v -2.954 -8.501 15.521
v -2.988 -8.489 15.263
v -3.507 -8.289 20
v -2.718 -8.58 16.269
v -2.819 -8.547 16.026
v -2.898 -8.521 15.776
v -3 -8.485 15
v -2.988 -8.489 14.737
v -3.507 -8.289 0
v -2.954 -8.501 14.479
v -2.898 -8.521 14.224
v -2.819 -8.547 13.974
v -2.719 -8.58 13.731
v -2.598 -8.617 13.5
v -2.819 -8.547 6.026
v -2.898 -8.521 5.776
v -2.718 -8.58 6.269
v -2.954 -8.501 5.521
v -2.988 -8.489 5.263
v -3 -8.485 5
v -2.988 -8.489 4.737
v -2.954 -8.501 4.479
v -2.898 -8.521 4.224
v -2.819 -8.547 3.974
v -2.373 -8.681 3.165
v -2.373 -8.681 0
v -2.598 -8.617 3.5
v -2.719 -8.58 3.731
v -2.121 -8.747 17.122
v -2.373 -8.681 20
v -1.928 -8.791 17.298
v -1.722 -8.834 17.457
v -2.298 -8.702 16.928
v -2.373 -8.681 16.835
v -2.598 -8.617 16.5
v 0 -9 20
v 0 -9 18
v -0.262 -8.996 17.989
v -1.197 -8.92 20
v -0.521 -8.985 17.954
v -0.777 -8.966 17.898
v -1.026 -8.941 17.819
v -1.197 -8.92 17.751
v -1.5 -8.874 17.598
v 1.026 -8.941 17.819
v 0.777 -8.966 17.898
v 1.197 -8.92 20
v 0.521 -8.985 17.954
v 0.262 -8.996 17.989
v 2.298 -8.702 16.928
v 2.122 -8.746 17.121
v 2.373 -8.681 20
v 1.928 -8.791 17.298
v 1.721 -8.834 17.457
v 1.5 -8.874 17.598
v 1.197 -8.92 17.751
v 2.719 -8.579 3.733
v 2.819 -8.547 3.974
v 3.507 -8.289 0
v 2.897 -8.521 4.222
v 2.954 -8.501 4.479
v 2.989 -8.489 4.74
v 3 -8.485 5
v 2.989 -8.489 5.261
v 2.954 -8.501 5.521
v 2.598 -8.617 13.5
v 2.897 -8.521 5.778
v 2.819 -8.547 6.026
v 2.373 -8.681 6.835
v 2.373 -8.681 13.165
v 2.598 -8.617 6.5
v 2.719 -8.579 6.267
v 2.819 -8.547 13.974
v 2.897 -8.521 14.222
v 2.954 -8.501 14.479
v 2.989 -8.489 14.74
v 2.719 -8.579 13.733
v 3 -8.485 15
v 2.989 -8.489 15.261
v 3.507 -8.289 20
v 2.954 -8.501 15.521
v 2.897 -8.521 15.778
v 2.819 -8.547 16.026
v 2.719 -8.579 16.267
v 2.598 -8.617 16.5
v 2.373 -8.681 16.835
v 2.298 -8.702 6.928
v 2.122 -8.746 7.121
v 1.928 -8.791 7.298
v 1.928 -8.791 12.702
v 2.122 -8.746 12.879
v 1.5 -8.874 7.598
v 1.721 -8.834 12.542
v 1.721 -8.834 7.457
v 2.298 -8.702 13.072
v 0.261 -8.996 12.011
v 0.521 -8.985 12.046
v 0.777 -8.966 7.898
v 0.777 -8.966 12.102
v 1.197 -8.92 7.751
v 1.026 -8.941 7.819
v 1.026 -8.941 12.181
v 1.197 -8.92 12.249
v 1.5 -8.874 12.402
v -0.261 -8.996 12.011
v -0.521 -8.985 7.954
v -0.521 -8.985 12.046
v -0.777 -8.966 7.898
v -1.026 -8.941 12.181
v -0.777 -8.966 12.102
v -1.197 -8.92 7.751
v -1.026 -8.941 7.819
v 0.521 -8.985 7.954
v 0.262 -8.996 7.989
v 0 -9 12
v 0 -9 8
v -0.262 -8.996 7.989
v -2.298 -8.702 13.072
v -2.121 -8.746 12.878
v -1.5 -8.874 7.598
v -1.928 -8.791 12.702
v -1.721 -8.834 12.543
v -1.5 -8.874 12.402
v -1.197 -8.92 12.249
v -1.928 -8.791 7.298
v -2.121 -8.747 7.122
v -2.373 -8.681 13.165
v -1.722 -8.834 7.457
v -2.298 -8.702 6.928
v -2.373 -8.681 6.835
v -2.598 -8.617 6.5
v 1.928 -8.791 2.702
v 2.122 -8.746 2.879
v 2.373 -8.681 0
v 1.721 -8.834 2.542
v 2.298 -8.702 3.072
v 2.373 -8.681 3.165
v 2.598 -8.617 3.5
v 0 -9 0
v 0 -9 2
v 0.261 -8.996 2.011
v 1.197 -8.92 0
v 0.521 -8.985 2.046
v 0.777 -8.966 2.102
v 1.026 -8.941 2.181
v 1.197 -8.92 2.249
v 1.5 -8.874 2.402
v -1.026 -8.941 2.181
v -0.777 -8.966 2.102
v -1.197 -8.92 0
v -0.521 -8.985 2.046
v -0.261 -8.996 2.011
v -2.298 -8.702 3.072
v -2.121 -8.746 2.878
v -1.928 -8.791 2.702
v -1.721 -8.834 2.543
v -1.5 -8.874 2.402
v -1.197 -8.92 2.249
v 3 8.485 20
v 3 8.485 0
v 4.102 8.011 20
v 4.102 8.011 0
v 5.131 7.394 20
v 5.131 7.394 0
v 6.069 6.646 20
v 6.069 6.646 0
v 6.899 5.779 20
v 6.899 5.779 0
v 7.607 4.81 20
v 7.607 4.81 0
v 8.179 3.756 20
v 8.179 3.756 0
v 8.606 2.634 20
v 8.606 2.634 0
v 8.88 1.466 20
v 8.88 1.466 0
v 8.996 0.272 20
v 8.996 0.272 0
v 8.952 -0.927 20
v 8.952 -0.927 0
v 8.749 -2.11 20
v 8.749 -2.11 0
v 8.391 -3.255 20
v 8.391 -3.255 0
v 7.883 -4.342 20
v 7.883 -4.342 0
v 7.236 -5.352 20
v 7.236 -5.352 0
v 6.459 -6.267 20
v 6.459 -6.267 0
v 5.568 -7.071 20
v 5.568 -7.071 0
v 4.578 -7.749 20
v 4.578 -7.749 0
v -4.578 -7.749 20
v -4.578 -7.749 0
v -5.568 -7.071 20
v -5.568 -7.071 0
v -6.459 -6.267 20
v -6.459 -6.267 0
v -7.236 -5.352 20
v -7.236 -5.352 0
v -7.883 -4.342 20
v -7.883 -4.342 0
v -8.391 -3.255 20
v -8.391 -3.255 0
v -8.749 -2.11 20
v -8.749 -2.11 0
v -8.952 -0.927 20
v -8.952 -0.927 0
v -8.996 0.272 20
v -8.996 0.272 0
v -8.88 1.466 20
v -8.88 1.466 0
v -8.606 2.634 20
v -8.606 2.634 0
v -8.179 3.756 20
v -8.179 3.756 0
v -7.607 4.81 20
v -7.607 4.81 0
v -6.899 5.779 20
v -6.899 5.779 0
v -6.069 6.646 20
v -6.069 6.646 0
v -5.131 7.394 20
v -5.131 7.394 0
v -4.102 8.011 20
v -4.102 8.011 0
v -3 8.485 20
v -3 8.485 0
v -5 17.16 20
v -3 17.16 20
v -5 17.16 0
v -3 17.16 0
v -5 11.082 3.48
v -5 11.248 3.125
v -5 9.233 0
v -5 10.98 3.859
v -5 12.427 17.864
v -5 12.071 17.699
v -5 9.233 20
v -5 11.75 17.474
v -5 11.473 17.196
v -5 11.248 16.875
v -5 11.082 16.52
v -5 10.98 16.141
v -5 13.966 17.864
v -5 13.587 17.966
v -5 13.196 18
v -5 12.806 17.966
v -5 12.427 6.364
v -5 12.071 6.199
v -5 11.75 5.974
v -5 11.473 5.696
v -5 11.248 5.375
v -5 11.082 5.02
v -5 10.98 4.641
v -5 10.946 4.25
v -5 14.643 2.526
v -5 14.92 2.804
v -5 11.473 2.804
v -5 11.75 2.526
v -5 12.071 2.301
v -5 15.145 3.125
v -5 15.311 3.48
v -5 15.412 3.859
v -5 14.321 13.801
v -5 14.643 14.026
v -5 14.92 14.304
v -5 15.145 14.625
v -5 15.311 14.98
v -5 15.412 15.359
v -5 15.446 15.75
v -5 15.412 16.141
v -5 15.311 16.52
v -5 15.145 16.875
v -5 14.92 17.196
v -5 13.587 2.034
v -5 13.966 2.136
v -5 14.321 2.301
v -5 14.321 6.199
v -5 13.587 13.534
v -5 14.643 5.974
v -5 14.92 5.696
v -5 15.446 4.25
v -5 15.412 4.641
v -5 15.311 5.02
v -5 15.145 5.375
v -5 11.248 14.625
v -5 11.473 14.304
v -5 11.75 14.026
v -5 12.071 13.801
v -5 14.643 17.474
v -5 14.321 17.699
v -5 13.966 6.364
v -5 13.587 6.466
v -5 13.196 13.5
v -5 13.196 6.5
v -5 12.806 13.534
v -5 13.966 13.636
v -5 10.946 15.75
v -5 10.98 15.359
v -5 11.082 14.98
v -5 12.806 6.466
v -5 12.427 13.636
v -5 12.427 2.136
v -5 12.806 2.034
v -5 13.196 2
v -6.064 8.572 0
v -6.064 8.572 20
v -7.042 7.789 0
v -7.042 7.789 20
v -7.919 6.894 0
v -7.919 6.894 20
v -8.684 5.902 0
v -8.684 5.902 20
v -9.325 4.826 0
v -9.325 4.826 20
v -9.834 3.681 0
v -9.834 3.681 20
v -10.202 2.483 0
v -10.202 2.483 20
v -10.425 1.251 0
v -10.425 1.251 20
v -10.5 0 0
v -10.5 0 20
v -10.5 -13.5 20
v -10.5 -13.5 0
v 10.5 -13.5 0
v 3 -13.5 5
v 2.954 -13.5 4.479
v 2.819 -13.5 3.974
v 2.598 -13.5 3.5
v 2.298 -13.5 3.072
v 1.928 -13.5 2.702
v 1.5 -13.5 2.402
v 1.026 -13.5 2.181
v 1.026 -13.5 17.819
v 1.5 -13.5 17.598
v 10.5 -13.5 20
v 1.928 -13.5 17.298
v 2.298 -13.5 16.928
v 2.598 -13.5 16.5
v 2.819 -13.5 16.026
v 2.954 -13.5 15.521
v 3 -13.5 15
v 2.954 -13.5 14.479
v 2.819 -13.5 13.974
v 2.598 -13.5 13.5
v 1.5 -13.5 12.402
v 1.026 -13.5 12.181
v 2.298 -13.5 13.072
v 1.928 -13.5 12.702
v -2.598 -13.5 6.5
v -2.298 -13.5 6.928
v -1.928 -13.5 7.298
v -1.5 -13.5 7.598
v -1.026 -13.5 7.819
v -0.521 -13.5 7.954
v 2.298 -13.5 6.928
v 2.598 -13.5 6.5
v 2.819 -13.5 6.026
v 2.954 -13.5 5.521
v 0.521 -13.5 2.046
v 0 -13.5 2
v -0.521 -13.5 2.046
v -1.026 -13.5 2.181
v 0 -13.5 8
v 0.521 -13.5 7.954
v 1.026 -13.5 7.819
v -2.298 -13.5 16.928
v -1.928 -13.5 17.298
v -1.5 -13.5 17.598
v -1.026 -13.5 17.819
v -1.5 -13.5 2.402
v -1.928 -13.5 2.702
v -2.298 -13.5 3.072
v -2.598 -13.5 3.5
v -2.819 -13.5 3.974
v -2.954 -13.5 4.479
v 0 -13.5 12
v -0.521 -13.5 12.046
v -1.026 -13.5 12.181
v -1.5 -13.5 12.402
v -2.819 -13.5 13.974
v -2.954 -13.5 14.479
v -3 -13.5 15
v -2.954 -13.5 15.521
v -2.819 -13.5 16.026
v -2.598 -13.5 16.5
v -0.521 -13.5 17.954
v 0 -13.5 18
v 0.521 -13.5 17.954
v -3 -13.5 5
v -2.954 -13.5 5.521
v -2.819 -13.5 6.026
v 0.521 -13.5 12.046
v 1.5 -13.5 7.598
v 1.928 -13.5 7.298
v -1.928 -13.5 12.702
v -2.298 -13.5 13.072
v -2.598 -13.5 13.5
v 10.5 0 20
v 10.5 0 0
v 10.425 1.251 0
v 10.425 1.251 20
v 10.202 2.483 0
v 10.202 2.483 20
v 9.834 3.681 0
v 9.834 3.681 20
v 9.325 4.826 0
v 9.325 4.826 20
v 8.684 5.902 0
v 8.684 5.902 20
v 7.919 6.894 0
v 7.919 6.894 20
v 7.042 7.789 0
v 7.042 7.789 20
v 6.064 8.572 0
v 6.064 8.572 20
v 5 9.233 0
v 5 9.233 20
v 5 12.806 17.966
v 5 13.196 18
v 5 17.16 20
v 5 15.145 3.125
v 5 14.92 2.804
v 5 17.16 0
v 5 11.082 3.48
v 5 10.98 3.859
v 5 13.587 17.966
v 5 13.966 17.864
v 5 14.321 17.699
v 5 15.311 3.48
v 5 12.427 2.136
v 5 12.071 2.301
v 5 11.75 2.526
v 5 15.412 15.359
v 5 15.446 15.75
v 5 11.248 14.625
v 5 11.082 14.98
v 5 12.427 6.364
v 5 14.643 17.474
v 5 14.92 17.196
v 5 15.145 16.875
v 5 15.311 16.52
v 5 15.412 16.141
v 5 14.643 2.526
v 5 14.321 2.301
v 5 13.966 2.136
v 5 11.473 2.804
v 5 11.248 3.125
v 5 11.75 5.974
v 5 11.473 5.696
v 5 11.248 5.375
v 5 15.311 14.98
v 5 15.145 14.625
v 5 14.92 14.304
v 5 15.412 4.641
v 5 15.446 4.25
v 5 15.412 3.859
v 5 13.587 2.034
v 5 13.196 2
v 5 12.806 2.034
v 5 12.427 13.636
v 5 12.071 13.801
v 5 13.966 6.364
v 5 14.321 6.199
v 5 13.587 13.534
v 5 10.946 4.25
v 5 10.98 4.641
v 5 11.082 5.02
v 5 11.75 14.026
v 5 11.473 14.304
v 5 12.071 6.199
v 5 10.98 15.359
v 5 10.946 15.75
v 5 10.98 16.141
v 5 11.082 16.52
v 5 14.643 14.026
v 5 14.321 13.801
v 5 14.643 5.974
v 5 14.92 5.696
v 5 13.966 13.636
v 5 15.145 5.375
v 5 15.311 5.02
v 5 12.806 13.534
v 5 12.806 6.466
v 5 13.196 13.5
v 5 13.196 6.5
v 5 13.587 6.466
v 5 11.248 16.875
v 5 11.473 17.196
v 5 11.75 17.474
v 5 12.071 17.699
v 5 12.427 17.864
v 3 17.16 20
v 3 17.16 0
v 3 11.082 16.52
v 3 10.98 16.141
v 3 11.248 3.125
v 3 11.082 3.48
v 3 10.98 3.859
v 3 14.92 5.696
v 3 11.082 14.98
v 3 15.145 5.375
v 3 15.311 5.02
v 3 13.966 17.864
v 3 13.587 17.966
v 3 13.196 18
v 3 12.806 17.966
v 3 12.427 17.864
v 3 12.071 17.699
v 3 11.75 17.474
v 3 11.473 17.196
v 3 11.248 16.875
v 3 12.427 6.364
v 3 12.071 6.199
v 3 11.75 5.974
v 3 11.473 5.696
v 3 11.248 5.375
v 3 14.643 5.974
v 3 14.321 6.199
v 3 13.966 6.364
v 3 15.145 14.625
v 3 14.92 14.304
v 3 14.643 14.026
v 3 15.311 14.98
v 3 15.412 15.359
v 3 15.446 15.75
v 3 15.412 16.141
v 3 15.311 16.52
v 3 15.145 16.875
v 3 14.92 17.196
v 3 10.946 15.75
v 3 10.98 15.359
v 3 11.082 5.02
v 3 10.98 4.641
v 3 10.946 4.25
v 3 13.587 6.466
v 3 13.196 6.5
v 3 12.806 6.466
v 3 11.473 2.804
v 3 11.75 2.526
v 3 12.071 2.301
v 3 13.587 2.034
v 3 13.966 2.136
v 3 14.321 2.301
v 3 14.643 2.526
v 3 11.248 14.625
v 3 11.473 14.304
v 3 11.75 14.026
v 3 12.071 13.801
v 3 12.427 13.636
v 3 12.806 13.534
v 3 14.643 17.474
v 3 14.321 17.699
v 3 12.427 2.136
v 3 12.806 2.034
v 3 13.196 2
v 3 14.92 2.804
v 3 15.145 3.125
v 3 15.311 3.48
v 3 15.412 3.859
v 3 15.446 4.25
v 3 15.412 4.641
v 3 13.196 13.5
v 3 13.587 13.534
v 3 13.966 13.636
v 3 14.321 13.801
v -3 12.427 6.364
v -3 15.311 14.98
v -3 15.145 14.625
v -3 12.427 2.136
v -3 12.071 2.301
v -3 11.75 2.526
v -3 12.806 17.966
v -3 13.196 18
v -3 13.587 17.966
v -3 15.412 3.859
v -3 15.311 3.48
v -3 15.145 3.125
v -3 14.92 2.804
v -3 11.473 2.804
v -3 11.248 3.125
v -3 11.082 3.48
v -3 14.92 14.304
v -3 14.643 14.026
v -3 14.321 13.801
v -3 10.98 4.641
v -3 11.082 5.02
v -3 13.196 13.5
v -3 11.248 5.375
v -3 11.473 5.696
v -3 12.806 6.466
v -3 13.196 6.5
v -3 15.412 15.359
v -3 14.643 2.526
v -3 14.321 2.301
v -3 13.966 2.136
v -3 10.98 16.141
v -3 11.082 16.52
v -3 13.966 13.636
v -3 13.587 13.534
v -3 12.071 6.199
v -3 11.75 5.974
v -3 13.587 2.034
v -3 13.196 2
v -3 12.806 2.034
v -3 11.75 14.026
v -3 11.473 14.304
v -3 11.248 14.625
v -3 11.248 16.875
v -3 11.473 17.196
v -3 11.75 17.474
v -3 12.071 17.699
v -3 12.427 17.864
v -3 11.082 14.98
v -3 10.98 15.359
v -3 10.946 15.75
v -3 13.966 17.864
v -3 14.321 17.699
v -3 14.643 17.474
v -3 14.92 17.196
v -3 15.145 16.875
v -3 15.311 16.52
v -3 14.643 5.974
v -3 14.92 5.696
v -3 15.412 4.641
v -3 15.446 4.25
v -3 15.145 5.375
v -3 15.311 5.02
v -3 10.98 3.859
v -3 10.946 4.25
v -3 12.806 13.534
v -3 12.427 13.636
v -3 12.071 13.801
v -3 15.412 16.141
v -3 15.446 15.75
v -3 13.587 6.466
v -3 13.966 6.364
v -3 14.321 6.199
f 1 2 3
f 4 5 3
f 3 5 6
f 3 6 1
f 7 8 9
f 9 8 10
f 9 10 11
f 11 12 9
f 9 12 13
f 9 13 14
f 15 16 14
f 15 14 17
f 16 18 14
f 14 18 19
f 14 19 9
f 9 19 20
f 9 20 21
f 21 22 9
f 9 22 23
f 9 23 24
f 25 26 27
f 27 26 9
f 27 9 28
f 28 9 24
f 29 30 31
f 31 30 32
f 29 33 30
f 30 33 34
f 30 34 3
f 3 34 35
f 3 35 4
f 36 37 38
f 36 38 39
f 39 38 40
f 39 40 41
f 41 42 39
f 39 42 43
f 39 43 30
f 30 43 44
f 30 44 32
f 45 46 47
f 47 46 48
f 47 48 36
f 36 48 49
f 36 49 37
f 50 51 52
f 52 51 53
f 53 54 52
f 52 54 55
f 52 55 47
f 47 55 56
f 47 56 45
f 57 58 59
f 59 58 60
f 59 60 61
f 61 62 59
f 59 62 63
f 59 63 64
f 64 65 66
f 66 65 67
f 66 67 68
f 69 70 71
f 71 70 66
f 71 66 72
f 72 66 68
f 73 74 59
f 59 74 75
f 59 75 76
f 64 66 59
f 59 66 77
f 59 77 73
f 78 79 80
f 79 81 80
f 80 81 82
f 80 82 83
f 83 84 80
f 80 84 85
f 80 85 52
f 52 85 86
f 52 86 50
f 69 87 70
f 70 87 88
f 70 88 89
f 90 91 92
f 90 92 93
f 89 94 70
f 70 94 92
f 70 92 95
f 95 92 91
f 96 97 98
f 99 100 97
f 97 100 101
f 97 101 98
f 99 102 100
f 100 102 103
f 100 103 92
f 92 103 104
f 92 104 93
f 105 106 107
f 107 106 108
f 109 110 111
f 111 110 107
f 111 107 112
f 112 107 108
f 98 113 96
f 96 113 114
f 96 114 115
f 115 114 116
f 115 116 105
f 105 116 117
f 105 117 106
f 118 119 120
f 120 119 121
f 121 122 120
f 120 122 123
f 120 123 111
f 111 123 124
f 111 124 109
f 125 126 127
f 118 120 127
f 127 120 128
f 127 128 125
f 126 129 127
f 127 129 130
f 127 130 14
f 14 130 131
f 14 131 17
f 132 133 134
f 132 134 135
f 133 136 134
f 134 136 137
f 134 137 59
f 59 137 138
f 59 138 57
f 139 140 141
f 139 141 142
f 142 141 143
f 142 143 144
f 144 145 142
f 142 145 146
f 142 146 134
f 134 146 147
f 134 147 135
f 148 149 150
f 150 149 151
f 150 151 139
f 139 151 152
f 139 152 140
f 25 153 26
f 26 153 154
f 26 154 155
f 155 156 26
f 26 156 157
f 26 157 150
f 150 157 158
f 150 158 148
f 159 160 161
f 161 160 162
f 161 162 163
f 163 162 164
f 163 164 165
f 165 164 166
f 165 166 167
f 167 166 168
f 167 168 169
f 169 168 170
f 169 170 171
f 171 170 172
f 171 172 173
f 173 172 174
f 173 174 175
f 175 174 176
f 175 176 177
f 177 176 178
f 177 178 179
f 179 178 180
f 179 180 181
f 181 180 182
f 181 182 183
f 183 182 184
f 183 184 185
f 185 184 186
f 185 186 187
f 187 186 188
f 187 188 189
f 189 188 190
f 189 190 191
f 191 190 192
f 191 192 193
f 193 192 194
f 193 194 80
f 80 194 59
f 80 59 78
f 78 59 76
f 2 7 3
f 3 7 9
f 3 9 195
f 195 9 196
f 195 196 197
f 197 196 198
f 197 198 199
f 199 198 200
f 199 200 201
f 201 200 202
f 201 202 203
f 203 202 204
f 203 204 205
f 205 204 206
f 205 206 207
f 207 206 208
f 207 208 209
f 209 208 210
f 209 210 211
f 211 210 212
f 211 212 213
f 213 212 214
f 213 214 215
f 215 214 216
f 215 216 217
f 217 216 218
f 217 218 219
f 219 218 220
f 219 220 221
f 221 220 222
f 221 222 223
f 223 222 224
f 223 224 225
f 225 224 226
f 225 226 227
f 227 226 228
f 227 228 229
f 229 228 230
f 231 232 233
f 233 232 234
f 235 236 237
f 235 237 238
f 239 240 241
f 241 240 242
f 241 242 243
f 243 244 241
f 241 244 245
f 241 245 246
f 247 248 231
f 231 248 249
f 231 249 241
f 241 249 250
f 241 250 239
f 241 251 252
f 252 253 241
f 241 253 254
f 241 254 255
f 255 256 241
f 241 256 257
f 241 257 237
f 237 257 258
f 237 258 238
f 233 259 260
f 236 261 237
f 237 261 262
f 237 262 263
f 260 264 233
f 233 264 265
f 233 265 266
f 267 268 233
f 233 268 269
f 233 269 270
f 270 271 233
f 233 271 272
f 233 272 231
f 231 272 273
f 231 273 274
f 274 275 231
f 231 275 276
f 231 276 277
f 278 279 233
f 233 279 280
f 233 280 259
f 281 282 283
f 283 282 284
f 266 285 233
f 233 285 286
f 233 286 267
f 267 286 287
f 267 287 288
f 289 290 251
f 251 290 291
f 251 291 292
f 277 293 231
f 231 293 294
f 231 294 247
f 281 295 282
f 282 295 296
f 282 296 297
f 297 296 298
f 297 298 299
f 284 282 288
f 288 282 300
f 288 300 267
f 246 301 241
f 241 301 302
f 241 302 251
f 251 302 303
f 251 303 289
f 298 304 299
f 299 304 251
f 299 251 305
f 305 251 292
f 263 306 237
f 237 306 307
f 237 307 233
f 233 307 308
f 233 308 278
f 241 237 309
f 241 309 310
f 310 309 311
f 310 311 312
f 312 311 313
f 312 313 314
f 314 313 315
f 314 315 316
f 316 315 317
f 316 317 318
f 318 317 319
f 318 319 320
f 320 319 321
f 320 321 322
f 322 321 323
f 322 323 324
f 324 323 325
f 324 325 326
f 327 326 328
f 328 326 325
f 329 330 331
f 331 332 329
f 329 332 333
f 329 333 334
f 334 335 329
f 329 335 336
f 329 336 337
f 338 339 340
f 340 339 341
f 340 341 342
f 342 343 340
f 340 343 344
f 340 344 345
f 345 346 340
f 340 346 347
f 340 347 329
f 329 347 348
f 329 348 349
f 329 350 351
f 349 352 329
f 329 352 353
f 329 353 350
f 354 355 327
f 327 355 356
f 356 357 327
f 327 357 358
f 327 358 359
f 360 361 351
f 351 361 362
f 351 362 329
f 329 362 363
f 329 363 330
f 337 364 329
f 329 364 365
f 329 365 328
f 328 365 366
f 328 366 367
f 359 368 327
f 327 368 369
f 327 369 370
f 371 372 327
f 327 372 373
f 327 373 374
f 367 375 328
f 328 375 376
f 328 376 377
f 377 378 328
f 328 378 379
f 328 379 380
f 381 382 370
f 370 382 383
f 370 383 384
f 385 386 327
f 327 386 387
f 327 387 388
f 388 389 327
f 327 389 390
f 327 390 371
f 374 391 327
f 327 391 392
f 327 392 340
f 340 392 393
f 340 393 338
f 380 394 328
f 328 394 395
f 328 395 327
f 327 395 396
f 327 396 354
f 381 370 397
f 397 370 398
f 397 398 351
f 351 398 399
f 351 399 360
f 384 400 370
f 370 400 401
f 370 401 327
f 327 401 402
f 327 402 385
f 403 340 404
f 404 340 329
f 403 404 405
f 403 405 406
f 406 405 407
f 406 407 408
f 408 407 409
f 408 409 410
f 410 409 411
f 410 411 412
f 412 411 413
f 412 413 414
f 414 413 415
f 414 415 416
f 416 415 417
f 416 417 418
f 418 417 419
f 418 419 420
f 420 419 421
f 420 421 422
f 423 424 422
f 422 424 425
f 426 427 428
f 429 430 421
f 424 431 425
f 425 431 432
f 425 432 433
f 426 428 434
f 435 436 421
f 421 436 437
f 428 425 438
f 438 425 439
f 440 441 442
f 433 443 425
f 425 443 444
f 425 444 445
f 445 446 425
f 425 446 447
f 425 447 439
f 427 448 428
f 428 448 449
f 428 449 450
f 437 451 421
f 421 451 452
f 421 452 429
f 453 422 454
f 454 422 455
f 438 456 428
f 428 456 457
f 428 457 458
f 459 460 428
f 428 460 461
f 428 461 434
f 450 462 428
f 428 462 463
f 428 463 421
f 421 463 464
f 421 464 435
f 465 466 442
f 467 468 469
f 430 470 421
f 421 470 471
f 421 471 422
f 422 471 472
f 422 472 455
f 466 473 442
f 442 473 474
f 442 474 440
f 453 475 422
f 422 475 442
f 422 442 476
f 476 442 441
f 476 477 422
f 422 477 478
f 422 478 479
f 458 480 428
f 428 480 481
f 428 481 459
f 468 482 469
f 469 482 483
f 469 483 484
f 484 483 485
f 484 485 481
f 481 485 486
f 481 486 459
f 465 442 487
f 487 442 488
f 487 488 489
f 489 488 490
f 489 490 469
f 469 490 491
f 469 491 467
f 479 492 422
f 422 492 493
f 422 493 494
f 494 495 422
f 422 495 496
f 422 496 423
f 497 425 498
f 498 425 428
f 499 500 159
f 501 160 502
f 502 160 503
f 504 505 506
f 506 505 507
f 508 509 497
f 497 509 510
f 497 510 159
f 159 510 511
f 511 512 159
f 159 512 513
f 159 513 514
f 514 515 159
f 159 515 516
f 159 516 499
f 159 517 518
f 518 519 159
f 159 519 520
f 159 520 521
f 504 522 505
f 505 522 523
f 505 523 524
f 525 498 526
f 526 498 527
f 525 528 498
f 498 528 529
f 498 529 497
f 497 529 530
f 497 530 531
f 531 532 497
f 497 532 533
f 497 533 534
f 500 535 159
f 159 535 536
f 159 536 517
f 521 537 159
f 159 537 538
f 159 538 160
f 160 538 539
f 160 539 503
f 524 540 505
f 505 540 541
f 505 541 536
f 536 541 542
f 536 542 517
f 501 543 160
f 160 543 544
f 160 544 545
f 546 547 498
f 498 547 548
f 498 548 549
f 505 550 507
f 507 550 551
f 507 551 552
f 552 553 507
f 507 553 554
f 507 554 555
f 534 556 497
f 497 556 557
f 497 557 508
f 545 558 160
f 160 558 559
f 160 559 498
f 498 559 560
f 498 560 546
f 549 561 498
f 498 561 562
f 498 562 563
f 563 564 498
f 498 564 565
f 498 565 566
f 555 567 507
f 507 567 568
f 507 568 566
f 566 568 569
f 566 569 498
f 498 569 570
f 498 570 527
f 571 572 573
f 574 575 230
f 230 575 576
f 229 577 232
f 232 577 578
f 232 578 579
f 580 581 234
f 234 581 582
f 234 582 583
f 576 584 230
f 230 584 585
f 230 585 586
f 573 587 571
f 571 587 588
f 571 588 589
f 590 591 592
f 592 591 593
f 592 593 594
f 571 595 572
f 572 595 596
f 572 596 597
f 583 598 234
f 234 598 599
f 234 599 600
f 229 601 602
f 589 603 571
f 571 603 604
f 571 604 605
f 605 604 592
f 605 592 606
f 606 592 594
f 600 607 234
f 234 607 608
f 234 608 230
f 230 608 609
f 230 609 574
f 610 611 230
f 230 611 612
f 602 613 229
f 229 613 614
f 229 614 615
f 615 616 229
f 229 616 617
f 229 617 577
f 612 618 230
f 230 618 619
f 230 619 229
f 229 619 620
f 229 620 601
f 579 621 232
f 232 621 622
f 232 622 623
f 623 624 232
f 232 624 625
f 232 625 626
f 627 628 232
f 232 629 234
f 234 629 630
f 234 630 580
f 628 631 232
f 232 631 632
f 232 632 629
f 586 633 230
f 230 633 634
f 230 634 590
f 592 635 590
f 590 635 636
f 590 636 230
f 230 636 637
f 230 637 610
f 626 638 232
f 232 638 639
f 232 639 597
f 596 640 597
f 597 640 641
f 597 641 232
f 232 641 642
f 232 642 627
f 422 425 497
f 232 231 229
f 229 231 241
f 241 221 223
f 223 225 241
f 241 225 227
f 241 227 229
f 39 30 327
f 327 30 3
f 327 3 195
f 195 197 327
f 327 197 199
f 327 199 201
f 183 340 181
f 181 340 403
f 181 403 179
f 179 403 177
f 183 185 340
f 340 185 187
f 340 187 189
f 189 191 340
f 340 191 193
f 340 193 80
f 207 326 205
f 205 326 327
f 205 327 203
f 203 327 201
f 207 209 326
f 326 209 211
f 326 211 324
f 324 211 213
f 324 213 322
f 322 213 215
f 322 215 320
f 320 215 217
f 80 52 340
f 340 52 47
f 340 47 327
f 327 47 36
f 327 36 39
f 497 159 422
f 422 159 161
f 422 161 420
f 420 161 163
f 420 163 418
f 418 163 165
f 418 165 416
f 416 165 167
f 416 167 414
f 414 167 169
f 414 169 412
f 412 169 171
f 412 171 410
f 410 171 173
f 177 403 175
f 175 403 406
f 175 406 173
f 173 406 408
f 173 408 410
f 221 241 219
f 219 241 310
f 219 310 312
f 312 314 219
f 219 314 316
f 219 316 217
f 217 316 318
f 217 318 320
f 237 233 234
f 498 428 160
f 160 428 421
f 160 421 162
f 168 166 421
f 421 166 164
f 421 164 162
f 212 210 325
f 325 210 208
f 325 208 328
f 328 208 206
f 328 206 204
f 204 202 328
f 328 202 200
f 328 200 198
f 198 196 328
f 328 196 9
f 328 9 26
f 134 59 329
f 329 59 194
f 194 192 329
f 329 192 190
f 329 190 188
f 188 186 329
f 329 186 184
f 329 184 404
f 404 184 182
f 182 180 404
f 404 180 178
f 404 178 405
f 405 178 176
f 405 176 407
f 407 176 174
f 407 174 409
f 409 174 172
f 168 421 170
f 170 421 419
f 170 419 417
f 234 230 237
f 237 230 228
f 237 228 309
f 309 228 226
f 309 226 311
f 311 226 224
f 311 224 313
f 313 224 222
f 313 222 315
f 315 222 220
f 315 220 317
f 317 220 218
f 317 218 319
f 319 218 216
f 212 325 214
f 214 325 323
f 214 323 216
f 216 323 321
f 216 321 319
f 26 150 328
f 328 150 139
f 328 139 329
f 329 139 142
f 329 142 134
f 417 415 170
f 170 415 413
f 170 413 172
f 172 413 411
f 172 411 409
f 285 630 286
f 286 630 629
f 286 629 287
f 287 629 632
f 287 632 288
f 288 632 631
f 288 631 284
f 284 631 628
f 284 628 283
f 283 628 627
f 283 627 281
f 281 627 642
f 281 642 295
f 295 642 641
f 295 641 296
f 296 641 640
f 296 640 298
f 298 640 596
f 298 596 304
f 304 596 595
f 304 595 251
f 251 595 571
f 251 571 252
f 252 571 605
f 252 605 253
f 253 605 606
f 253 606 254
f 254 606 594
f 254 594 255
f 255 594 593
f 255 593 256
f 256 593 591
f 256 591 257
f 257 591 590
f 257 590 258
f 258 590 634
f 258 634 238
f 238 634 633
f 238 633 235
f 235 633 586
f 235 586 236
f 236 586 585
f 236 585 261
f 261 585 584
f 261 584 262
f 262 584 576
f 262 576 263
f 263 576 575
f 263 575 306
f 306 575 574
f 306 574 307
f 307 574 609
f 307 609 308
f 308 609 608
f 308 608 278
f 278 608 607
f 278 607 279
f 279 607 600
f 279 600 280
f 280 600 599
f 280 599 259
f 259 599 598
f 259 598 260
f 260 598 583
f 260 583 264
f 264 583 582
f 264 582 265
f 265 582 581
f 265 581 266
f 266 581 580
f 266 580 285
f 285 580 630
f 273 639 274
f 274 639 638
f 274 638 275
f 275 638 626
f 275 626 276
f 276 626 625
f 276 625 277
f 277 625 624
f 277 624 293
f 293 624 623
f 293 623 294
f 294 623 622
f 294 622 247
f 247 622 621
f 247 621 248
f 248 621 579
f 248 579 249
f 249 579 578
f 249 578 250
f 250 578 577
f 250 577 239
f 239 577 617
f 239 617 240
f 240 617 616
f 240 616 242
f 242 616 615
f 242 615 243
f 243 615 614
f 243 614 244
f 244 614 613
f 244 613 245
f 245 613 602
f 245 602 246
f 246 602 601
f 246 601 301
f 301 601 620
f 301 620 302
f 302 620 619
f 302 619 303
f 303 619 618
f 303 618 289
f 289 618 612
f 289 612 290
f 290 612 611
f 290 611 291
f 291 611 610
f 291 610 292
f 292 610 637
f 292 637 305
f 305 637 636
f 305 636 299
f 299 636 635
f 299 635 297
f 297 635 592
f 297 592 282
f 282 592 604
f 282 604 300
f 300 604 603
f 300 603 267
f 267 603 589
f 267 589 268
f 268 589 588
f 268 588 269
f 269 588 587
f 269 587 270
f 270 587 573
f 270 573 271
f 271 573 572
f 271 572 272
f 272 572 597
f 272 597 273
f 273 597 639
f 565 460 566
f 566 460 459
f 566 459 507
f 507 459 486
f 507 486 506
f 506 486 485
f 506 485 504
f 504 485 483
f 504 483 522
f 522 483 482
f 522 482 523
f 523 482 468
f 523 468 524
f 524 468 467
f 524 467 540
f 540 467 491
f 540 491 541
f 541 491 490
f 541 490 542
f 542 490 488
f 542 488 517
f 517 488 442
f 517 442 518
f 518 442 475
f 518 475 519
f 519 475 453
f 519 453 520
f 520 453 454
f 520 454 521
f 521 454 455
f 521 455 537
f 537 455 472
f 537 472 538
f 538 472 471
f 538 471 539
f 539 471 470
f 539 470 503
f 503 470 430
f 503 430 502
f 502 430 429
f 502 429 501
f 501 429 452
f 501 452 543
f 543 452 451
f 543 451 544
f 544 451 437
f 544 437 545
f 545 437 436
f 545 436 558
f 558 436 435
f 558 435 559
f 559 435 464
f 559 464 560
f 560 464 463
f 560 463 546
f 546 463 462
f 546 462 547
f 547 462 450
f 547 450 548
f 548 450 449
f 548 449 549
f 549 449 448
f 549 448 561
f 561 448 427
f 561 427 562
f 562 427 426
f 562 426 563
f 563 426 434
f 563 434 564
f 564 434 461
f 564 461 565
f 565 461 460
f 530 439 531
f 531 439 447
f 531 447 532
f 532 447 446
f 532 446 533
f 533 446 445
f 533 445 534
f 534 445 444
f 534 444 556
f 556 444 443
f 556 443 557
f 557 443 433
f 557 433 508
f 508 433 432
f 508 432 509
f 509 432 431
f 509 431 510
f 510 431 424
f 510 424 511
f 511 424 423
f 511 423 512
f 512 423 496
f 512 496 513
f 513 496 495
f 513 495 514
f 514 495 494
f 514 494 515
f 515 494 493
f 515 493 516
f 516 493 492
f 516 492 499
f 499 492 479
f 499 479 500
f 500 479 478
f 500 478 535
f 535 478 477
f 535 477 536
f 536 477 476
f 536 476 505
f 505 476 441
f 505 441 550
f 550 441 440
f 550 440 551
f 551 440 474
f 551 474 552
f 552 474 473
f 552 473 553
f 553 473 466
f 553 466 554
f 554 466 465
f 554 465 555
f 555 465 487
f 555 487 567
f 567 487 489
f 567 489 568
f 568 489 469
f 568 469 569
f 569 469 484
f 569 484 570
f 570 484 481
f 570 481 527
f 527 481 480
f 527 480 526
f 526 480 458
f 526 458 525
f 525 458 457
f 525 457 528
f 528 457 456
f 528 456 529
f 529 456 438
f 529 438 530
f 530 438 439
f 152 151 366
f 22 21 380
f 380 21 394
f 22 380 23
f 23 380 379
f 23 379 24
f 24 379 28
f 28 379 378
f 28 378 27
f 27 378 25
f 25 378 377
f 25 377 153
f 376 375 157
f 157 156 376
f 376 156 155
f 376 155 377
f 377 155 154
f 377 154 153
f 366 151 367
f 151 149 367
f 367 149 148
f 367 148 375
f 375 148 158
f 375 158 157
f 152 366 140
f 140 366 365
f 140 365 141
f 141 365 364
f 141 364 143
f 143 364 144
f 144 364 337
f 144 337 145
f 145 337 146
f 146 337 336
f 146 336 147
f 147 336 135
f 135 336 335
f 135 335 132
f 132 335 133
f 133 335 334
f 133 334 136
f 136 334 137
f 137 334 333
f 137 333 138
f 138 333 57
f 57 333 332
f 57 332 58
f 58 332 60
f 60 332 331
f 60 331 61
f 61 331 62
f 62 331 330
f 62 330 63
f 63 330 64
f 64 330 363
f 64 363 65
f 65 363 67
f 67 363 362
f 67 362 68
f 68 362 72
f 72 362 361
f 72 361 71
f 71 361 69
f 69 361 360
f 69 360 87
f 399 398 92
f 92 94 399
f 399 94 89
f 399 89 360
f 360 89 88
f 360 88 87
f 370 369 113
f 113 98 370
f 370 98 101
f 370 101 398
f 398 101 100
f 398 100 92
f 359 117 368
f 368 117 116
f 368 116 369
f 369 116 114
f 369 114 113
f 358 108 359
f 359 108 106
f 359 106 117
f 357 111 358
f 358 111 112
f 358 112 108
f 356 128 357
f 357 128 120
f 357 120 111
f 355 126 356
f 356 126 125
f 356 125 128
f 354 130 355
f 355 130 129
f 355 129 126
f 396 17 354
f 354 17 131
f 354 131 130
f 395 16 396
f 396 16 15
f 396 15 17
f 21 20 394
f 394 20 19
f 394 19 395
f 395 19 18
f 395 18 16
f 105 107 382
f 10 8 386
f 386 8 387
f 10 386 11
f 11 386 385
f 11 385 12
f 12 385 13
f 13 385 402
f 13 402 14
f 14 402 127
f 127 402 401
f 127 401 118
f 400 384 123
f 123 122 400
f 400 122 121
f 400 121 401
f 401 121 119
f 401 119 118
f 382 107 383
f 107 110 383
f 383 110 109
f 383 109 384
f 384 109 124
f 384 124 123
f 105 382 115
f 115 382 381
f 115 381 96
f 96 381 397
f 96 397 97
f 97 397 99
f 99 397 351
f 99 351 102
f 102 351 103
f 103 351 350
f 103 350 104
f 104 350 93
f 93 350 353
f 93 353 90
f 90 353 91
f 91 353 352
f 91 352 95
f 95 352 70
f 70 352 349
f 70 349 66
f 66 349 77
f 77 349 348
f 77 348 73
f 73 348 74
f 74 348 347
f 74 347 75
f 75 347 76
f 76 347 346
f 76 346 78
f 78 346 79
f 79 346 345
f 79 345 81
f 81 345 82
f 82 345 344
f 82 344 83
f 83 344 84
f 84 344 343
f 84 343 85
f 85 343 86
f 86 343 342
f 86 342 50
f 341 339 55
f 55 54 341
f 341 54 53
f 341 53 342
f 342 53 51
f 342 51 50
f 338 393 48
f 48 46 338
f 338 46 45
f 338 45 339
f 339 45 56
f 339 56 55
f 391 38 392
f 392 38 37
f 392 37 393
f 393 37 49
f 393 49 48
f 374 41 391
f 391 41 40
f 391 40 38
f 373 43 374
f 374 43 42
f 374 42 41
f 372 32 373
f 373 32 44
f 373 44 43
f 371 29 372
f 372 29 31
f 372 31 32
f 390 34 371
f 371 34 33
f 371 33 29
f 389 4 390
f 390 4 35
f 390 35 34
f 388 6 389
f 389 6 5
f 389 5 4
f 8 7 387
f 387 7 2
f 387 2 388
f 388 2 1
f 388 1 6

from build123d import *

# Parameters (mm, degrees)
BOSS_EXTRUDE1_DEPTH = 20
SKETCH3_R           = 2.25
CUT_EXTRUDE1_DEPTH  = 16.5
SKETCH5_R           = 2.125
CUT_EXTRUDE2_DEPTH  = 31.659519334
CUT_EXTRUDE6_START  = -6
SKETCH6_R           = 3
CUT_EXTRUDE6_DEPTH  = 44.5


with BuildPart() as part:
    # Sketch1 → Boss-Extrude1 (new body)
    with BuildSketch(Plane.XY):
        with BuildLine():
            Line((-3, 8.485281374), (-3, 17.159519334))
            Line((-3, 17.159519334), (-5, 17.159519334))
            Line((-5, 17.159519334), (-5, 9.233092656))
            ThreePointArc((-5, 9.233092656), (-9.020809276, 5.373546315), (-10.5, 0))
            Line((-10.5, 0), (-10.5, -13.5))
            Line((-10.5, -13.5), (10.5, -13.5))
            Line((10.5, -13.5), (10.5, 0))
            ThreePointArc((10.5, 0), (9.020809276, 5.373546315), (5, 9.233092656))
            Line((5, 9.233092656), (5, 17.159519334))
            Line((5, 17.159519334), (3, 17.159519334))
            Line((3, 17.159519334), (3, 8.485281374))
            ThreePointArc((3, 8.485281374), (0, -9), (-3, 8.485281374))
        make_face()
    extrude(amount=BOSS_EXTRUDE1_DEPTH)

    # Sketch3 → Cut-Extrude1 (cut, through all)
    with BuildSketch(Plane(origin=(5, 0, 0), x_dir=(0, 0, -1), z_dir=(1, 0, 0))):
        with Locations((-15.75, 13.196305995)):
            Circle(SKETCH3_R)
        with Locations((-4.25, 13.196305995)):
            Circle(SKETCH3_R)
    extrude(amount=-CUT_EXTRUDE1_DEPTH, mode=Mode.SUBTRACT)

    # Sketch5 → Cut-Extrude2 (cut, through all)
    with BuildSketch(Plane.XZ.offset(13.5)):
        with Locations((0, 5)):
            Circle(SKETCH5_R)
        with Locations((0, 15)):
            Circle(SKETCH5_R)
    extrude(amount=-CUT_EXTRUDE2_DEPTH, mode=Mode.SUBTRACT)

    # Sketch6 → Cut-Extrude6 (cut)
    with BuildSketch(Plane.XZ.offset(13.5).offset(CUT_EXTRUDE6_START)):
        with Locations((0, 15)):
            Circle(SKETCH6_R)
        with Locations((0, 5)):
            Circle(SKETCH6_R)
    extrude(amount=CUT_EXTRUDE6_DEPTH, mode=Mode.SUBTRACT)


solid = part.part
